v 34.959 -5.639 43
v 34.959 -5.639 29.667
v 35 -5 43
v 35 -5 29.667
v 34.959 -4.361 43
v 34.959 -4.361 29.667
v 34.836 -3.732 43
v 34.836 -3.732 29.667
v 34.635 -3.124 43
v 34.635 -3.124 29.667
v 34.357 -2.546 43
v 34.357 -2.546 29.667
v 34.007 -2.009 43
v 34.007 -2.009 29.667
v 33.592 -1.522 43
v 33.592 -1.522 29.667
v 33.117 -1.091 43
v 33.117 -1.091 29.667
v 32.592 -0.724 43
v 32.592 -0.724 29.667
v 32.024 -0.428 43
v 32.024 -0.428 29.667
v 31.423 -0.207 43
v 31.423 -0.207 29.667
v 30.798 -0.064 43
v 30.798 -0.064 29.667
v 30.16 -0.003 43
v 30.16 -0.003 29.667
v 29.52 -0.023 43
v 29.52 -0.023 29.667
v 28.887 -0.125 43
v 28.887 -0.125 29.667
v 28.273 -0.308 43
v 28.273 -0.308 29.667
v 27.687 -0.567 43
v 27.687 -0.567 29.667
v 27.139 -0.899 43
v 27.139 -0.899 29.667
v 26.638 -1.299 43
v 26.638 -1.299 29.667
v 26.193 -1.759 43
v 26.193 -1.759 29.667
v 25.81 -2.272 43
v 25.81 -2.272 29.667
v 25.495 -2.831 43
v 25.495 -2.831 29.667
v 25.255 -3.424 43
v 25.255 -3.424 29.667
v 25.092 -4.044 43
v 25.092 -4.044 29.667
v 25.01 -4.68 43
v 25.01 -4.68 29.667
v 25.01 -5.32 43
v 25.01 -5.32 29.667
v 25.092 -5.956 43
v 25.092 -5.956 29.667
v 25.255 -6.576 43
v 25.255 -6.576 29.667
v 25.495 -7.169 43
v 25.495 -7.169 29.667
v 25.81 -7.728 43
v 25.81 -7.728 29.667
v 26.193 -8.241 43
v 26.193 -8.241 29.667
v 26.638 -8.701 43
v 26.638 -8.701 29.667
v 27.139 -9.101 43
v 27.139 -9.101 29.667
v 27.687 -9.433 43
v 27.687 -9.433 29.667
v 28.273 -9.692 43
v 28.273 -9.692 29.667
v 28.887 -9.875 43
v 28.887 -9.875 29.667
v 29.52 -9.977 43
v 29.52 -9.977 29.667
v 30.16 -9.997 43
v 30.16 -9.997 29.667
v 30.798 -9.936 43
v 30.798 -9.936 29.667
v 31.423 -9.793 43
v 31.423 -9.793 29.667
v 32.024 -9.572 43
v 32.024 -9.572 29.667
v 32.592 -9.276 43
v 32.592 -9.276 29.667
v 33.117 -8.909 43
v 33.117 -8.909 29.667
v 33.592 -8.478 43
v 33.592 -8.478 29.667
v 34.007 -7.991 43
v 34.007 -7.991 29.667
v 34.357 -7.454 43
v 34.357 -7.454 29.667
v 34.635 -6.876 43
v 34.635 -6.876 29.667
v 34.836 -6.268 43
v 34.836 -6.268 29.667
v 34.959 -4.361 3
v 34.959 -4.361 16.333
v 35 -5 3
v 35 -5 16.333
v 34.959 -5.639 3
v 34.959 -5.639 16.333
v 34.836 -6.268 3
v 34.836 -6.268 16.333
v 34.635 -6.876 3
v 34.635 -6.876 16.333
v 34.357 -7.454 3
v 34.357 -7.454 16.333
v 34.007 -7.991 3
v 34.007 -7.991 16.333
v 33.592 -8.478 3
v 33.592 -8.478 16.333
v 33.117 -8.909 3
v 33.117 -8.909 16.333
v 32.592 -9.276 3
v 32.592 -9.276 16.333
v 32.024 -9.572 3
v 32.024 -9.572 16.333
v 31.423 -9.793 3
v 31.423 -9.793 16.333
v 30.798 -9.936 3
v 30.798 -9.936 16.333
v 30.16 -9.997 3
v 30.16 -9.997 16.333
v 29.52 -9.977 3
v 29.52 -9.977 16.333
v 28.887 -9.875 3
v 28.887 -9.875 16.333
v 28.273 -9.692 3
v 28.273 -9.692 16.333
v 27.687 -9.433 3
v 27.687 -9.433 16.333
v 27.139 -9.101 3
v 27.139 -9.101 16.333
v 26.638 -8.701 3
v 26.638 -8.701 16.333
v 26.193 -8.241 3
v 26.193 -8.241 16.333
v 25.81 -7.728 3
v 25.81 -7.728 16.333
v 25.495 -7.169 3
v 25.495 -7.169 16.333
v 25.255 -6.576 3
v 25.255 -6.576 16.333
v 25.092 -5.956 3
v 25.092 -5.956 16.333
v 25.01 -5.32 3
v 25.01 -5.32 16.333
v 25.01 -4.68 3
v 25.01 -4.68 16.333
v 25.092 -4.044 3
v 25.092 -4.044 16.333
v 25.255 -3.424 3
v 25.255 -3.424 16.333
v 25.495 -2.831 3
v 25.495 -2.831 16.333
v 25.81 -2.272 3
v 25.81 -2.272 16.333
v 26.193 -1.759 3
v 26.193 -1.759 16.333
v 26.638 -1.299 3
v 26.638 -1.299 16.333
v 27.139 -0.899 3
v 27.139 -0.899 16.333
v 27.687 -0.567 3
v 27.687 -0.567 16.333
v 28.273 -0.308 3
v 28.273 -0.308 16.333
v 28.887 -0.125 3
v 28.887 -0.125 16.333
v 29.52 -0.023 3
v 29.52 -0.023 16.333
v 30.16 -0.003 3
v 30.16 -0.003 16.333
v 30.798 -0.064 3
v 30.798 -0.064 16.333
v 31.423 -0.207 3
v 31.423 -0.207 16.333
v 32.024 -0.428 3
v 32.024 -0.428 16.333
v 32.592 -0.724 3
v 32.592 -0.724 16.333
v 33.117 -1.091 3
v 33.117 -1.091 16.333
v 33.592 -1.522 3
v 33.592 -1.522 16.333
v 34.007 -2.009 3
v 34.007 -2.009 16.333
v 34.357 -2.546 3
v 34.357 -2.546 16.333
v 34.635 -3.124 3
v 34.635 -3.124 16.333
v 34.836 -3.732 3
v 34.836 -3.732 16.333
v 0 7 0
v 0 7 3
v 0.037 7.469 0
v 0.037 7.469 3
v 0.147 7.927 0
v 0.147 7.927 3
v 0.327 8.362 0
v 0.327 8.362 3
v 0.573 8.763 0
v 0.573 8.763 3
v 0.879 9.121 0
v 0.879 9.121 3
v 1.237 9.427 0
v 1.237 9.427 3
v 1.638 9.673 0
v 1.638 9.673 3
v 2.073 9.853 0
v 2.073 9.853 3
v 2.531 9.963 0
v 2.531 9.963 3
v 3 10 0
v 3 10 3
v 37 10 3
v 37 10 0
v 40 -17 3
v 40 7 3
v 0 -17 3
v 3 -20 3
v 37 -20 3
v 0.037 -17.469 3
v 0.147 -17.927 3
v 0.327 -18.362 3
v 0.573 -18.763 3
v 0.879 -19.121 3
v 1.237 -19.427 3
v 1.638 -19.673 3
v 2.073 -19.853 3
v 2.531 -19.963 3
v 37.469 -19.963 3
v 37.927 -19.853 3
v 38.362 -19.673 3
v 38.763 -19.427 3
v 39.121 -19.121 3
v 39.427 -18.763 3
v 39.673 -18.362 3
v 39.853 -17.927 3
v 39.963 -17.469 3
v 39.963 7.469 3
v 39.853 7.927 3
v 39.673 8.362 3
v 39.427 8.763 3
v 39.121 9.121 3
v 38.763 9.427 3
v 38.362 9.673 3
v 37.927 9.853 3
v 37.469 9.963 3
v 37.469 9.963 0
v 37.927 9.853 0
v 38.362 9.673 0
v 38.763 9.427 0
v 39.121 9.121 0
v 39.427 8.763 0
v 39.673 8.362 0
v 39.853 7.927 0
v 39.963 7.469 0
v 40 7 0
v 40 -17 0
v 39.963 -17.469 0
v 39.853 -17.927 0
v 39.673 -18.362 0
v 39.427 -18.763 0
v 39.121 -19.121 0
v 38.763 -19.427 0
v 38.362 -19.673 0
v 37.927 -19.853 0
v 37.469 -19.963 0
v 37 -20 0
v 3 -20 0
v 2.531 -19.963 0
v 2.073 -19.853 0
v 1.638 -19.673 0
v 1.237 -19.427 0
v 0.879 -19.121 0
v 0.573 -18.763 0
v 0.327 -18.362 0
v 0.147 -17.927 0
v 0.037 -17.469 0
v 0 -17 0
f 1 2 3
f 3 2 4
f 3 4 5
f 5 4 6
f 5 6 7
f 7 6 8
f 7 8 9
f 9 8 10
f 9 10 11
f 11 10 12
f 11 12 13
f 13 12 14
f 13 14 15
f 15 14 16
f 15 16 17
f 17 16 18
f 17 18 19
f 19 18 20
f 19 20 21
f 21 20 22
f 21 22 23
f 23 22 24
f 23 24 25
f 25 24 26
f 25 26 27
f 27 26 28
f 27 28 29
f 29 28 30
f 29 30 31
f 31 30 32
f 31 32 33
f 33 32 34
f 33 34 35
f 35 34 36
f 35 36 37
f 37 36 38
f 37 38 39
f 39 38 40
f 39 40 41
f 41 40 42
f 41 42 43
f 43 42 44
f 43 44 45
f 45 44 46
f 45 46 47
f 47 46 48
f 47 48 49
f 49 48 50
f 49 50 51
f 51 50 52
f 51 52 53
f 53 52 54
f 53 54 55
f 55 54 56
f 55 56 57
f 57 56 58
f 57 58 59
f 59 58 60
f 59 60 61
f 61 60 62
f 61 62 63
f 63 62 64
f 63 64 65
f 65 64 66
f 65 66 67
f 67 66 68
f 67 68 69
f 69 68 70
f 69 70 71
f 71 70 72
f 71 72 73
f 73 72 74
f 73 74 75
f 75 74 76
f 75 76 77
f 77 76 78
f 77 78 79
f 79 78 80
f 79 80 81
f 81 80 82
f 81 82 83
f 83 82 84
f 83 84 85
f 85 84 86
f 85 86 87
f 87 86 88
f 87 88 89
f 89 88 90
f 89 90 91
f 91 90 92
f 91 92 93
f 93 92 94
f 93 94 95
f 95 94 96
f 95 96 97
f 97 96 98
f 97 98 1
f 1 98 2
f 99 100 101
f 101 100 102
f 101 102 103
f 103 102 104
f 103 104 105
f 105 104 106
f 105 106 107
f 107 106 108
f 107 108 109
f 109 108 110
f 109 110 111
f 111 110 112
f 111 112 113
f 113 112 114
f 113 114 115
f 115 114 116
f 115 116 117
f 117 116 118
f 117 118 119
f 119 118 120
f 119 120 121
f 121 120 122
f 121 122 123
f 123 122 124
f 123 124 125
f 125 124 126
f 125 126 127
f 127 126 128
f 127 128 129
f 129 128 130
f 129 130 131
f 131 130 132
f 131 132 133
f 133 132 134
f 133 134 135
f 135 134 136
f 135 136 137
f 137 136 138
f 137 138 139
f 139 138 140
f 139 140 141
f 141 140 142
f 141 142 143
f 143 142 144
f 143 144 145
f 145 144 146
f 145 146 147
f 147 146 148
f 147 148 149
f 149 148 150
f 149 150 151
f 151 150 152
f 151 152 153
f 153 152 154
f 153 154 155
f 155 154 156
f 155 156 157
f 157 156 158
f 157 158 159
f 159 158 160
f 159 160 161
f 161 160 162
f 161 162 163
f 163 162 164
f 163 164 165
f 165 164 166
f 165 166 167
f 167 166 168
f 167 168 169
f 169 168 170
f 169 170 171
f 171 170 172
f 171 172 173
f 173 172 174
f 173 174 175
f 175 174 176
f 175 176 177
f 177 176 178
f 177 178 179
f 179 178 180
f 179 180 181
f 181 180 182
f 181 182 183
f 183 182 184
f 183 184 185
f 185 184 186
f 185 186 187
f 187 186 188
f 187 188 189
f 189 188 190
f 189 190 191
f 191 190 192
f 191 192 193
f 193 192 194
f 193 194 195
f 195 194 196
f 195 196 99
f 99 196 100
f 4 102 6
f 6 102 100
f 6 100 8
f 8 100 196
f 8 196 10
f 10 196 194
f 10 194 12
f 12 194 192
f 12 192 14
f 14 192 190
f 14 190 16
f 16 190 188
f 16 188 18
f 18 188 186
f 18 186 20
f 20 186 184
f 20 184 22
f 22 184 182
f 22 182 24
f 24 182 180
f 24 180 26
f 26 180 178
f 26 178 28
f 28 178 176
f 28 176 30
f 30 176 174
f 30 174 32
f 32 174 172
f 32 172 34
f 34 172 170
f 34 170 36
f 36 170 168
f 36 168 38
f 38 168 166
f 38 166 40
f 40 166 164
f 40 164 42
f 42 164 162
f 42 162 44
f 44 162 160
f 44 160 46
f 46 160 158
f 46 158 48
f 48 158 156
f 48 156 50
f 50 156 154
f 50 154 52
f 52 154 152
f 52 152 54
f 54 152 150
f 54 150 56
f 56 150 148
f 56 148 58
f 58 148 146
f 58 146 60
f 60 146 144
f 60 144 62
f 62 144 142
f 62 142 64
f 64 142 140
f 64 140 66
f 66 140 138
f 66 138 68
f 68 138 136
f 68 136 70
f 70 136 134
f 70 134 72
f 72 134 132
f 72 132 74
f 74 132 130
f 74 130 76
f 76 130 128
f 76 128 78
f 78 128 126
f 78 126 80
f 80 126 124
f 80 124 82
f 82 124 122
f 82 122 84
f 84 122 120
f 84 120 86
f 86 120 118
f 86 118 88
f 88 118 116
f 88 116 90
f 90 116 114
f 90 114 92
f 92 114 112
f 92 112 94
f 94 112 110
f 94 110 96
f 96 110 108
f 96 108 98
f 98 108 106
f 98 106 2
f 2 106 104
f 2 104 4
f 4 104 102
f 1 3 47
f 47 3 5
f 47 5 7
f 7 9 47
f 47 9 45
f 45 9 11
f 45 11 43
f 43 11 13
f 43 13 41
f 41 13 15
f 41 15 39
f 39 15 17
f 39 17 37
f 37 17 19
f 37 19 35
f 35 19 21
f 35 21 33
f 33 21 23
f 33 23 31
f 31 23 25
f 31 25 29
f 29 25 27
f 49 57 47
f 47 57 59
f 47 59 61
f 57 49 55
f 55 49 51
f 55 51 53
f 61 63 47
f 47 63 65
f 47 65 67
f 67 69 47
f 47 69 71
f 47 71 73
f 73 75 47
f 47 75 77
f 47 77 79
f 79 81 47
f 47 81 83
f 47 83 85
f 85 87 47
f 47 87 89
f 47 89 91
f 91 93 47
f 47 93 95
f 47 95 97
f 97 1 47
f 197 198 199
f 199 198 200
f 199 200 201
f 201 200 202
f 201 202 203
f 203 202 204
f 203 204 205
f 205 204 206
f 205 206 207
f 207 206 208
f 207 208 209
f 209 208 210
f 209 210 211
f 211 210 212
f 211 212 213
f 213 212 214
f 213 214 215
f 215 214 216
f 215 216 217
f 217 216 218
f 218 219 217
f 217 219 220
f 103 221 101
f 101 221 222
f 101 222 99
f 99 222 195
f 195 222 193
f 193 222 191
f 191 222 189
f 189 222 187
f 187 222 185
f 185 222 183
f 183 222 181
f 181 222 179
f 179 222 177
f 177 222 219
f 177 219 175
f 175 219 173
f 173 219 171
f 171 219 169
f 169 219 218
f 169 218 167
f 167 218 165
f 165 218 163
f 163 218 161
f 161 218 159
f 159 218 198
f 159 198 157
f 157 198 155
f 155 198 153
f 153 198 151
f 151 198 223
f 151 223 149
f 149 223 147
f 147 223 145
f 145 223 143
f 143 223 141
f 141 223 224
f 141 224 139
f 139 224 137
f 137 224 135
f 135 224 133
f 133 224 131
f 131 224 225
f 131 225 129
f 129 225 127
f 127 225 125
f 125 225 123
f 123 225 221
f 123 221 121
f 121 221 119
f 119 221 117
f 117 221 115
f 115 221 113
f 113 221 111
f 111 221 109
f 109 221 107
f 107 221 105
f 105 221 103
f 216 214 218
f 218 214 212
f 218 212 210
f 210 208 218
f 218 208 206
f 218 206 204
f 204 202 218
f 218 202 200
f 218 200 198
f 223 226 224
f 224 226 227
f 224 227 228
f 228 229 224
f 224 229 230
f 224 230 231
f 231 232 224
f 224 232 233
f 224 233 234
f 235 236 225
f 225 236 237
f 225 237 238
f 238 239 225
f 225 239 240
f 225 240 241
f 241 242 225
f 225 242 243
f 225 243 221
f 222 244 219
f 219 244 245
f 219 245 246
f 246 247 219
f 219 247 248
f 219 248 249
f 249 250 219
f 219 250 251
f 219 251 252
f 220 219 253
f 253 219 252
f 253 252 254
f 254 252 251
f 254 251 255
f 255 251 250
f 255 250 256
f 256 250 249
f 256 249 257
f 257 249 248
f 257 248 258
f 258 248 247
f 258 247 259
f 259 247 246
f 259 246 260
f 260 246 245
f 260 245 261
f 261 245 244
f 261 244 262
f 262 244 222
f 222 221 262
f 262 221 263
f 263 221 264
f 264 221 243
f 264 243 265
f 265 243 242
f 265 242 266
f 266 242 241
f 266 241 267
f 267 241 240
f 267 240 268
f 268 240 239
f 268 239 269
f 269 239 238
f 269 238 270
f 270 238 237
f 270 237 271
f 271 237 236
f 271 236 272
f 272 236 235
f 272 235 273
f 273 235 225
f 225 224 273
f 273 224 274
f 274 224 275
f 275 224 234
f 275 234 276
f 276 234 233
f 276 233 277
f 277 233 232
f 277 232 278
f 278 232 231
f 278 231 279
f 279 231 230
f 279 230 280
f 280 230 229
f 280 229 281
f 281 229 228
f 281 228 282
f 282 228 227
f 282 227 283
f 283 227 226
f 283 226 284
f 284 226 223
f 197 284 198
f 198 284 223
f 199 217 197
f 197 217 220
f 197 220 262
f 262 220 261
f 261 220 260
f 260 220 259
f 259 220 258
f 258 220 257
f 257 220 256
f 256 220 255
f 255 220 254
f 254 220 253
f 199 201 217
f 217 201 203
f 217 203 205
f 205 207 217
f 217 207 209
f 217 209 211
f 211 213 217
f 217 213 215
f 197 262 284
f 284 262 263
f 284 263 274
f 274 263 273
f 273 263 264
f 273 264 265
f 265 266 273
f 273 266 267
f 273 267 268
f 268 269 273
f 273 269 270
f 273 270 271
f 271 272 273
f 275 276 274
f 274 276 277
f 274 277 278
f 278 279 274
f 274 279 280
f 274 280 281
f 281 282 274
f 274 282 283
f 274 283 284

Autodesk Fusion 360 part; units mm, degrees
sketch "Skizze1" plane through (0, 0, 0) normal (0, 0, 1) x (1, 0, 0)
  line L0 (0, 10) -> (40, 10)
  line L1 (40, 10) -> (40, -20)
  line L2 (40, -20) -> (0, -20)
  line L3 (0, -20) -> (0, 10)
  dimension "d1" = 40
  dimension "d2" = 30
extrude "Extrusion1" add sketch "Skizze1" along normal blind 3
fillet "Abrundung1" radius 3 4 edges at (0, -20, 1.5) (40, -20, 1.5) (40, 10, 1.5) (0, 10, 1.5)
sketch "Skizze2" plane through (0, 0, 3) normal (0, 0, 1) x (-1, 0, 0)
  arc A0 (-3, -10) -> (0, -7) centre (-3, -7) ccw
  line L0 (0, -7) -> (0, 17)
  arc A1 (0, 17) -> (-3, 20) centre (-3, 17) ccw
  line L1 (-3, 20) -> (-37, 20)
  arc A2 (-37, 20) -> (-40, 17) centre (-37, 17) ccw
  line L2 (-40, 17) -> (-40, -7)
  arc A3 (-40, -7) -> (-37, -10) centre (-37, -7) ccw
  line L3 (-37, -10) -> (-3, -10)
  circle A4 centre (-30, 5) radius 5
extrude "Extrusion2" add sketch "Skizze2" along normal blind 40 contours A4
